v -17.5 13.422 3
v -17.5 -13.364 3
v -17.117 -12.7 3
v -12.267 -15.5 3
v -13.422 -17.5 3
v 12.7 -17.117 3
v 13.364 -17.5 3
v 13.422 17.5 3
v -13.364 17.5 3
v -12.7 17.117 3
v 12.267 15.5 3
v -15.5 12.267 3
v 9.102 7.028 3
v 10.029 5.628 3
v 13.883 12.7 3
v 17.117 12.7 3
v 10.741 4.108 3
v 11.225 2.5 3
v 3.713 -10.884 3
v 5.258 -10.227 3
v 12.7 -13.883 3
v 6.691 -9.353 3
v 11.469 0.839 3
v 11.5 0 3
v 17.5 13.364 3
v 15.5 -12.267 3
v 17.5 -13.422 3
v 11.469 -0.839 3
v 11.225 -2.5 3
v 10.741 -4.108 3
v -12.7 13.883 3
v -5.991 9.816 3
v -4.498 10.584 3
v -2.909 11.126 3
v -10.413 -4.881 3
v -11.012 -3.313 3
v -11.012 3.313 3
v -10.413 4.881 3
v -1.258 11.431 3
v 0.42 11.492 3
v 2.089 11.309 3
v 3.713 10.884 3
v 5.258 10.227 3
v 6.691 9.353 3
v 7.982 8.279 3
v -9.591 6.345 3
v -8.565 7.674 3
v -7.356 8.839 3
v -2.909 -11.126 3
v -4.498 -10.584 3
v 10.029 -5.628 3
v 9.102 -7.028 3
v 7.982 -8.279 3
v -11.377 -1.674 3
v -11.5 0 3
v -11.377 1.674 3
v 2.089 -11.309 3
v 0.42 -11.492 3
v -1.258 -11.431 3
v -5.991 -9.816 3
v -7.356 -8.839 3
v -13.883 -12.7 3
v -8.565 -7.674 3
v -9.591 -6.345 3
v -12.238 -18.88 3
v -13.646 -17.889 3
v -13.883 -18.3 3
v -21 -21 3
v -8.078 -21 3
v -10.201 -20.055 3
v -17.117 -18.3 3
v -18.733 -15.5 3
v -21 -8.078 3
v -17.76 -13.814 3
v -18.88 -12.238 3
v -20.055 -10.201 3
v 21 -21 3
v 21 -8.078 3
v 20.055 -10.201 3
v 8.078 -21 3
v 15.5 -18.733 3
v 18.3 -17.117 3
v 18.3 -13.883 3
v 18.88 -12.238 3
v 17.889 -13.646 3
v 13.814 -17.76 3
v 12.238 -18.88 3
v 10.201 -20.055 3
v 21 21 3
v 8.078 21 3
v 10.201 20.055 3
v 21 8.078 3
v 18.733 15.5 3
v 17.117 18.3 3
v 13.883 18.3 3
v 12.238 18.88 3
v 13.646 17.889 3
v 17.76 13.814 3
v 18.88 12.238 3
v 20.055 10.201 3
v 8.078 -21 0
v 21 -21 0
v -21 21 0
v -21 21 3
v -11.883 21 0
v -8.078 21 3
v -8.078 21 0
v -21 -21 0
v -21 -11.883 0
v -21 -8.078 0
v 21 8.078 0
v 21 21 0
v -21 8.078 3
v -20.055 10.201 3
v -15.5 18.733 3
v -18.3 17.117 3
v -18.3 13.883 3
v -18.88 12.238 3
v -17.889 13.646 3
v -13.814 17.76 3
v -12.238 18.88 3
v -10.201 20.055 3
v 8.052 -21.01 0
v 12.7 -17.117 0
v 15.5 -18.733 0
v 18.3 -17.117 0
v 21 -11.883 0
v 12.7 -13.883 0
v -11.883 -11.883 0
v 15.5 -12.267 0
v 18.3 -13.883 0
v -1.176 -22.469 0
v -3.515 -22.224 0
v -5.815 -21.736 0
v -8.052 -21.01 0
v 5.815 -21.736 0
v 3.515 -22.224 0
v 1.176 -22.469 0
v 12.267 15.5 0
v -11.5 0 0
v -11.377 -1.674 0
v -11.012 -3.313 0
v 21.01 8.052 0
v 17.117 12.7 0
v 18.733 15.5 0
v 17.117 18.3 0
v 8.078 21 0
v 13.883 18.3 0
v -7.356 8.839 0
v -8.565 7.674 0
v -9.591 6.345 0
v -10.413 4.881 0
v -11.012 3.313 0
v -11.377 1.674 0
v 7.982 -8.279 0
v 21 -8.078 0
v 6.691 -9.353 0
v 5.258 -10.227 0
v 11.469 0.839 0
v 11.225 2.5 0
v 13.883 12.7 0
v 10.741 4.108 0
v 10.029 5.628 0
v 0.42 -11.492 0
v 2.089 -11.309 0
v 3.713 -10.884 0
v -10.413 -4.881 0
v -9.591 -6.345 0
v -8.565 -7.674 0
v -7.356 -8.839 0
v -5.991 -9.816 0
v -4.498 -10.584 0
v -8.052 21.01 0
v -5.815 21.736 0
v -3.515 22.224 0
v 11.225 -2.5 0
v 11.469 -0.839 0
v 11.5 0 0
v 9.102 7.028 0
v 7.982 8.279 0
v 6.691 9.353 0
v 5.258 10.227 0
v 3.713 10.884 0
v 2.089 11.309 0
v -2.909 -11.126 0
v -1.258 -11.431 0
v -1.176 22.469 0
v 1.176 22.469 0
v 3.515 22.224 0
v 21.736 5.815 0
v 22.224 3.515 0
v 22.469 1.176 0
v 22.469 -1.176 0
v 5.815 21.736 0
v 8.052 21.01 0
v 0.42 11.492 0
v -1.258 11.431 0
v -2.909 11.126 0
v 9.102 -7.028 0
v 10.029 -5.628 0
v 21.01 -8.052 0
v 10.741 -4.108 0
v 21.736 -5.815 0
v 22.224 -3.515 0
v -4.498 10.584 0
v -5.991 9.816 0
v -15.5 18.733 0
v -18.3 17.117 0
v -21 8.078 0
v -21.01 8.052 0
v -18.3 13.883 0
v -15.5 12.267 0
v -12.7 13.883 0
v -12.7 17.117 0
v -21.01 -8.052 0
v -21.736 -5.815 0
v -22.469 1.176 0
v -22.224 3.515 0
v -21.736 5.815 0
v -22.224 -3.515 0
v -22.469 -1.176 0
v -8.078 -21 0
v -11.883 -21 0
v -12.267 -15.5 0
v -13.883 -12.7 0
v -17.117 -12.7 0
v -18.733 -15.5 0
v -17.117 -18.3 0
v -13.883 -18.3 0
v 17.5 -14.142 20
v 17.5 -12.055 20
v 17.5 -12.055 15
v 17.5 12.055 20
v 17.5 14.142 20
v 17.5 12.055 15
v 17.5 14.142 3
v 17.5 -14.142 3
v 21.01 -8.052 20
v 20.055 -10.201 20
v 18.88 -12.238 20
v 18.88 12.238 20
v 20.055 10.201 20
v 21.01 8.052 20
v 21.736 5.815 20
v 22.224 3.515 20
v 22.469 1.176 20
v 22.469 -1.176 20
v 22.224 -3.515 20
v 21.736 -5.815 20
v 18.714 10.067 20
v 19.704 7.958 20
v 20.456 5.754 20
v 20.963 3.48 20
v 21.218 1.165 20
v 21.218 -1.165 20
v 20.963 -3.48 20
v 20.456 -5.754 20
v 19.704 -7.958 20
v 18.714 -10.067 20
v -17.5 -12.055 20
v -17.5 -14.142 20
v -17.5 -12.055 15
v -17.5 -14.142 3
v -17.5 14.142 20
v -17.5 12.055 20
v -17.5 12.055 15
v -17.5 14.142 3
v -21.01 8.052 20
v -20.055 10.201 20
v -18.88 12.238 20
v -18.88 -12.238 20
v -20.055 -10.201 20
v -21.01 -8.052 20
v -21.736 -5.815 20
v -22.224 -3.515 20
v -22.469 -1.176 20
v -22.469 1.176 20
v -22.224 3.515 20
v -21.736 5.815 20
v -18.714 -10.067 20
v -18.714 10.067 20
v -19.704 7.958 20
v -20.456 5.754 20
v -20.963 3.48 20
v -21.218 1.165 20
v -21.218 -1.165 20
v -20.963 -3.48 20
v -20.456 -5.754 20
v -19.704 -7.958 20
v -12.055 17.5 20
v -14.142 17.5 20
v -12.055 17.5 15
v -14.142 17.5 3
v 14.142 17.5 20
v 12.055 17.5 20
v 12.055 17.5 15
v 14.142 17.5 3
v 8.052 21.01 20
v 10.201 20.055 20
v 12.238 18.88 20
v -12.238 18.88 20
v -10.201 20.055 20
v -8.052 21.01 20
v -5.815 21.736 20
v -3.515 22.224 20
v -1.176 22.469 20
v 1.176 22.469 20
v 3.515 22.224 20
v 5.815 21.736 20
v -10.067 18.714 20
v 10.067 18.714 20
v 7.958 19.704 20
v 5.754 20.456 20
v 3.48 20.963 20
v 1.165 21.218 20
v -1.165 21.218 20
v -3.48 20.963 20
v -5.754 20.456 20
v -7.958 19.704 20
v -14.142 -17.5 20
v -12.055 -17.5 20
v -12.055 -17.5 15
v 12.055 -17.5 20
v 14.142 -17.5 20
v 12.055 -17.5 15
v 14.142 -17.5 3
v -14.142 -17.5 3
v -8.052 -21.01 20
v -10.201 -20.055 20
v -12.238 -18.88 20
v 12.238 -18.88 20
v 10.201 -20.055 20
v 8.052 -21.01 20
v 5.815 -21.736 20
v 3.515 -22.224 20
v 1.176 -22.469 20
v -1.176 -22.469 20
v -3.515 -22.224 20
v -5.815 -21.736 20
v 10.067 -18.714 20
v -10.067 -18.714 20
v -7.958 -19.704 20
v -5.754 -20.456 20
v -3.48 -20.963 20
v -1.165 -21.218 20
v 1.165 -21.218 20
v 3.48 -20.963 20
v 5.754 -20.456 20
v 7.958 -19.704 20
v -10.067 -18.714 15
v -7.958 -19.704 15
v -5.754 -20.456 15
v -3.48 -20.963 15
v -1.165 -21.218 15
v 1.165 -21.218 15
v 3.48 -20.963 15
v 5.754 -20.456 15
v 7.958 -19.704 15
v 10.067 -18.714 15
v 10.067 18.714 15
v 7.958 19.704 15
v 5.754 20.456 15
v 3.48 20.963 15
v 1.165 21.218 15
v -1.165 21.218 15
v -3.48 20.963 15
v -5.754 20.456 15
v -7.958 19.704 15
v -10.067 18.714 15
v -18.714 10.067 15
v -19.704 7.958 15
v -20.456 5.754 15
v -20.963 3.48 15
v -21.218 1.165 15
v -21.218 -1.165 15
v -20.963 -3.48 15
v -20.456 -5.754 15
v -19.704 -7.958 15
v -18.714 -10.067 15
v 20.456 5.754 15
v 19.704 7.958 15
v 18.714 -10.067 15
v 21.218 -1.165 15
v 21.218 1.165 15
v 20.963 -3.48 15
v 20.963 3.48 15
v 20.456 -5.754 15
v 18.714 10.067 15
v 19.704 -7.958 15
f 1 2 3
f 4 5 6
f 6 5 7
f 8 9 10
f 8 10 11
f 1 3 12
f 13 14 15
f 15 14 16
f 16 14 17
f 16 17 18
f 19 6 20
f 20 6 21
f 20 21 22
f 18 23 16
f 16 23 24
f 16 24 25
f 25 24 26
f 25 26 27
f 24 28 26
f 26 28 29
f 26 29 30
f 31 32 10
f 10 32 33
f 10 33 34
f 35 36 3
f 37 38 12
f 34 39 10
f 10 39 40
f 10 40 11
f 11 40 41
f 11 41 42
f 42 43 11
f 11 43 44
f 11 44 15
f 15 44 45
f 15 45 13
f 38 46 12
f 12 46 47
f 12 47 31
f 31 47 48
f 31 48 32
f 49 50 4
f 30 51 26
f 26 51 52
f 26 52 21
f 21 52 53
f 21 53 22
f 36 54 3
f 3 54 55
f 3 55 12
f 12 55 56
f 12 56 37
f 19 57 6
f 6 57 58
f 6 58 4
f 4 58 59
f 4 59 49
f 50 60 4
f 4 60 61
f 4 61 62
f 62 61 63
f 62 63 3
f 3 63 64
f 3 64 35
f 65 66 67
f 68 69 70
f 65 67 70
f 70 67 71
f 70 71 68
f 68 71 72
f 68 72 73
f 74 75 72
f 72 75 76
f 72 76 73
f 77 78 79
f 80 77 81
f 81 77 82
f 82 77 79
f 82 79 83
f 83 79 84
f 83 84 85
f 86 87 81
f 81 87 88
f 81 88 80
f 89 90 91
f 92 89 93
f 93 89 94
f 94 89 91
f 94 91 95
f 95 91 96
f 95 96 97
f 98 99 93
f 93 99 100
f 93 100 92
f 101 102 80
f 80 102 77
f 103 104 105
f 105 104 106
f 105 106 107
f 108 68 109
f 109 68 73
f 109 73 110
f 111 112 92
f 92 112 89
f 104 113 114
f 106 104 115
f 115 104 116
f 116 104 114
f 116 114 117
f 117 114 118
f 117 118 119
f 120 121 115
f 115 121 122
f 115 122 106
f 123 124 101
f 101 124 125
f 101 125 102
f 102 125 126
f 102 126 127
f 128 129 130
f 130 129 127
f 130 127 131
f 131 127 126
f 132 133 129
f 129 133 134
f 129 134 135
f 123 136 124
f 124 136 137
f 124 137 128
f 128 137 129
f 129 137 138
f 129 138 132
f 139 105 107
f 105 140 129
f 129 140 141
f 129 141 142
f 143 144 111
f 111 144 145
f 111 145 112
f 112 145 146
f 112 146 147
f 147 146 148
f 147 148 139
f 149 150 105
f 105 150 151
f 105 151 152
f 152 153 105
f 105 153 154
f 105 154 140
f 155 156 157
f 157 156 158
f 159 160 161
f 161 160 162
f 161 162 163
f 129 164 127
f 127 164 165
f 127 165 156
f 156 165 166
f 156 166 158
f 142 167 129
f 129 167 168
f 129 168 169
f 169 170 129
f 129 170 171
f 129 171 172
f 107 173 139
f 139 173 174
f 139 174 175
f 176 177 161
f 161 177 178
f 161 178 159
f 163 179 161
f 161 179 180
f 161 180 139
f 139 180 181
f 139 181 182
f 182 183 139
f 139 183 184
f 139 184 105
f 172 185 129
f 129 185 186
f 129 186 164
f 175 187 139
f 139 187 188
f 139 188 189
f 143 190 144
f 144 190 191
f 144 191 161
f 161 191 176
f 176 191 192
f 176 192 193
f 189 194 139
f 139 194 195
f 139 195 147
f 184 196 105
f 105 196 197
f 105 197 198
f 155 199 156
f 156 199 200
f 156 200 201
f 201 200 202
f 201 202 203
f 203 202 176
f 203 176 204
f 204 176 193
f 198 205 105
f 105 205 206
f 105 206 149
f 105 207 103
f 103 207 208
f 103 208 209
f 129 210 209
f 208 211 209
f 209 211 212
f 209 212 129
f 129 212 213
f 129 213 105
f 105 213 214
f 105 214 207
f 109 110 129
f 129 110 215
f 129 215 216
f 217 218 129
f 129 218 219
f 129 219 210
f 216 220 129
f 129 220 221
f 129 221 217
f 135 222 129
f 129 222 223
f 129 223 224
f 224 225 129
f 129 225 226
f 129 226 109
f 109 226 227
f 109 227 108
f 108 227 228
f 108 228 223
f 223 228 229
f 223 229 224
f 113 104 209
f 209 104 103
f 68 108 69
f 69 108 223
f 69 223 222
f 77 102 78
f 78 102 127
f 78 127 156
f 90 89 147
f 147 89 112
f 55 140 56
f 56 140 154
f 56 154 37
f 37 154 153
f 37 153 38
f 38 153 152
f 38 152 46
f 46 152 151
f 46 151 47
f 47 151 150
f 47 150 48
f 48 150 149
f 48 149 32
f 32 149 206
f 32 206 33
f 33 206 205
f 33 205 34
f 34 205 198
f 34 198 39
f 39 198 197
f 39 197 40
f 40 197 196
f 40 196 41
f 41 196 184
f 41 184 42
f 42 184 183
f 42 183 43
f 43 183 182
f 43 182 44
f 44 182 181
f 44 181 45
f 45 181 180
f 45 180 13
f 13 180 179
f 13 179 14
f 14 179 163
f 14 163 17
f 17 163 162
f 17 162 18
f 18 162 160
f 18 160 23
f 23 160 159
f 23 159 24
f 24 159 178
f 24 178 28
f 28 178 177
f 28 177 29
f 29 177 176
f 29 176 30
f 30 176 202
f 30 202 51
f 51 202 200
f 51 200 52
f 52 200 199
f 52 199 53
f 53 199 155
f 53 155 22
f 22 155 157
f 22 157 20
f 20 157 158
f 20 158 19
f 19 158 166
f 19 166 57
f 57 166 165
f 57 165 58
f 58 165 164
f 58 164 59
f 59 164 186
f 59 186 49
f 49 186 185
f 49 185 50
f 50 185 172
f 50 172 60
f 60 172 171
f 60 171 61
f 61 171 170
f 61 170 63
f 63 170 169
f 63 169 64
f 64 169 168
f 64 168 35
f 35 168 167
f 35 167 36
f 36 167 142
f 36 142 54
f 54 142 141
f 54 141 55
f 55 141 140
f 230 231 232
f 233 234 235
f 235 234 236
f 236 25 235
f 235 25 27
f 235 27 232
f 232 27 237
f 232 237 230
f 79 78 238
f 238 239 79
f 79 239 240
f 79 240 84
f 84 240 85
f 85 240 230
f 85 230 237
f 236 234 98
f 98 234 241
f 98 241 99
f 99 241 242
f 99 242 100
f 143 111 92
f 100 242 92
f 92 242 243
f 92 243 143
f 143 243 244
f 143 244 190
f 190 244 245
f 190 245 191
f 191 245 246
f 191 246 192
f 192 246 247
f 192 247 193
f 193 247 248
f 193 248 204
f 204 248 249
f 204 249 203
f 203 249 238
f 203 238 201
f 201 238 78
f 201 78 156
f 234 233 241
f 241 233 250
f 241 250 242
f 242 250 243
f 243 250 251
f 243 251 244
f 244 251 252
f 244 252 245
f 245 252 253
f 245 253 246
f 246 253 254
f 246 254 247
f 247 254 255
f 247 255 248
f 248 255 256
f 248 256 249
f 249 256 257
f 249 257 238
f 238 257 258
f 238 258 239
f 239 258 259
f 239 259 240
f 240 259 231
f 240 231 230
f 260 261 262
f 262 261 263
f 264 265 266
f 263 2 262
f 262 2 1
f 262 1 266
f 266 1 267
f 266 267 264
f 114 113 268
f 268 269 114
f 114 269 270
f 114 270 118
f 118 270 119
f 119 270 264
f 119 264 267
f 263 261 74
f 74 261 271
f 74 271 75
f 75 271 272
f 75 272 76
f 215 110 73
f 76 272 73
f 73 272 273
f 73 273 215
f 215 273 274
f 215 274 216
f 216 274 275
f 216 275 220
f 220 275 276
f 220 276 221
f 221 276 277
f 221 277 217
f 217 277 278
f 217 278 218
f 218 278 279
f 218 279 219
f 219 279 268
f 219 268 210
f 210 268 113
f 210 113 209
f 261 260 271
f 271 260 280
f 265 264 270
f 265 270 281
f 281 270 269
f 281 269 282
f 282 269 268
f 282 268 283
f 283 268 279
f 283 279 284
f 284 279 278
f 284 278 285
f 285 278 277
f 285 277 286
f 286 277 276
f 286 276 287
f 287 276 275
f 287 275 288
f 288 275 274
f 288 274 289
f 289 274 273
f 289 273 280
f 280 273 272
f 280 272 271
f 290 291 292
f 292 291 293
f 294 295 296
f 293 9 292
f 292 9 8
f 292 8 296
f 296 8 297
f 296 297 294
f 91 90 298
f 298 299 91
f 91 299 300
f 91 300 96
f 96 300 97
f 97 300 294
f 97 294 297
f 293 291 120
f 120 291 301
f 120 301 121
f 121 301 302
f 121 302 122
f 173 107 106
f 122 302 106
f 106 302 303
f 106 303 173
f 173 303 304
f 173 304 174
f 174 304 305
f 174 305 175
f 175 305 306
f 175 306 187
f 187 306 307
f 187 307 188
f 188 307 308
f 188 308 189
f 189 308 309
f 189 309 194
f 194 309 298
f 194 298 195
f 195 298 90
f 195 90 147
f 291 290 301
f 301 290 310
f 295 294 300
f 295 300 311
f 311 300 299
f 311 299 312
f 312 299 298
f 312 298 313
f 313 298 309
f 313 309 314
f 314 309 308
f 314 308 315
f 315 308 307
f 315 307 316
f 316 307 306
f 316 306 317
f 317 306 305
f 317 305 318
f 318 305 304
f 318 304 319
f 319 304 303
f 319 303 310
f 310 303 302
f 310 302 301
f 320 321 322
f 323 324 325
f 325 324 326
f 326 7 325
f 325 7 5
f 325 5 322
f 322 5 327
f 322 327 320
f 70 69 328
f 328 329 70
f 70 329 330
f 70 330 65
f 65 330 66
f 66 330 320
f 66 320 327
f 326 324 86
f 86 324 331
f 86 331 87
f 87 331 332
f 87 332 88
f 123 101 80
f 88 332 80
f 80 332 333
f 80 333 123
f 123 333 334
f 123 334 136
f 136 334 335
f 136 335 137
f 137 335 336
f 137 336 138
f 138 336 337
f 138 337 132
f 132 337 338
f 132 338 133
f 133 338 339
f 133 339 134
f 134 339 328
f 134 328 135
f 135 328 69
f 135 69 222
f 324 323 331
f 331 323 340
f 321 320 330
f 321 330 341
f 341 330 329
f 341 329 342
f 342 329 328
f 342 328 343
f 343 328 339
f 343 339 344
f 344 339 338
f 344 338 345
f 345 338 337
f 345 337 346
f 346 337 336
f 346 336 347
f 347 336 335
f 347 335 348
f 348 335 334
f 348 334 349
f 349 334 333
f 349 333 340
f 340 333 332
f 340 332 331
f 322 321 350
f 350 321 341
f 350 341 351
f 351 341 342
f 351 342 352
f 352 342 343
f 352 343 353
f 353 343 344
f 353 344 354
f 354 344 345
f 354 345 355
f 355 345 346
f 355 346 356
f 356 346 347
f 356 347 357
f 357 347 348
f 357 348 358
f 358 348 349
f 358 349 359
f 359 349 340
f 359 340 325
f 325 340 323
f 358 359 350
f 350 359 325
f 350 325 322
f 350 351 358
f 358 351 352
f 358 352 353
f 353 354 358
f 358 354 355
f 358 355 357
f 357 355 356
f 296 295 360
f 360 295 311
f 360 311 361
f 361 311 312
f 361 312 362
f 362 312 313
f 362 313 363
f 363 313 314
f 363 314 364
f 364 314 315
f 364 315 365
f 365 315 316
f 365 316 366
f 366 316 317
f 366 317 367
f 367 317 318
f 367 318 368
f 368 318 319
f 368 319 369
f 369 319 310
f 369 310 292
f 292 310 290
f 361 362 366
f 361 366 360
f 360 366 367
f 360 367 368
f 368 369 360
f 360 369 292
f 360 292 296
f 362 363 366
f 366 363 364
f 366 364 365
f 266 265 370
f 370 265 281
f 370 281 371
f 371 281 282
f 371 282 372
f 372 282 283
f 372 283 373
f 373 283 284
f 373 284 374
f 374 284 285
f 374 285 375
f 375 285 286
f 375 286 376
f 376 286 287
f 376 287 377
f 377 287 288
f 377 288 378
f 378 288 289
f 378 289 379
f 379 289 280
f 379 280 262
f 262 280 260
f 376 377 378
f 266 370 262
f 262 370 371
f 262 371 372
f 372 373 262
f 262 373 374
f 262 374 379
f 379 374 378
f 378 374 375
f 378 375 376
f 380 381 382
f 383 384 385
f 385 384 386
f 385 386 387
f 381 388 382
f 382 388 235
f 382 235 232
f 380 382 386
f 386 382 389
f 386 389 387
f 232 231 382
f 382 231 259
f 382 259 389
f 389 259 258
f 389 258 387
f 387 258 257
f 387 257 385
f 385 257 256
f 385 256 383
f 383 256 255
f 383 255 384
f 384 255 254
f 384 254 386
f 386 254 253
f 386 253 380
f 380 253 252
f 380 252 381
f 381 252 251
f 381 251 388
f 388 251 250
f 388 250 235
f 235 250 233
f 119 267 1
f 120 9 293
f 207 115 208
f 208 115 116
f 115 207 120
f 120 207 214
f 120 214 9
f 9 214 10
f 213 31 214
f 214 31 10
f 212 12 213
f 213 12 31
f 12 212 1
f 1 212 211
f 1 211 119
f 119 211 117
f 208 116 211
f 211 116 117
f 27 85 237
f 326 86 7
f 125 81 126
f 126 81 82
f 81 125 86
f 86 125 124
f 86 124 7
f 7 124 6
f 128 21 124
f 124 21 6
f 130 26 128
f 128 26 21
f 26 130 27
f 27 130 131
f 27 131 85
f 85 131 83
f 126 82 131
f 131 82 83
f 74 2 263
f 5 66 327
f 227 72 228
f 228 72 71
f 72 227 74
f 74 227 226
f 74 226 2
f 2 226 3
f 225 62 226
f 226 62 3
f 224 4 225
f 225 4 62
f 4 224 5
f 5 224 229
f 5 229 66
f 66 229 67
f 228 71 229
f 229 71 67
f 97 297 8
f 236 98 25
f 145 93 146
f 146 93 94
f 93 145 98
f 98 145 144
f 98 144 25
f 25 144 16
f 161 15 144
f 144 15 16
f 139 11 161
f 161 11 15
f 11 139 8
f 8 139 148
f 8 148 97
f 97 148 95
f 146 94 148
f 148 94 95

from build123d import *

# Parameters (mm, degrees)
SKETCH_1_W               = 42
SKETCH_1_H               = 42
SKETCH_1_R               = 1.5
SKETCH_1_R_2             = 11.5
EXTRUDE_1_DEPTH          = 3
EXTRUDE_2_DEPTH          = 20
SKETCH_5_R               = 21.25
CUT_EXTRUDE_3_DEPTH      = 5
CUT_EXTRUDE_4_DEPTH      = 3
PATTERN_CIRCULAR_1_COUNT = 4


with BuildPart() as part:
    # 草图1 → 凸台-拉伸1 (new body)
    with BuildSketch(Plane.XY):
        Rectangle(SKETCH_1_W, SKETCH_1_H)
        with Locations((15.5, 15.5)):
            Circle(SKETCH_1_R, mode=Mode.SUBTRACT)
        with Locations((15.5, -15.5)):
            Circle(SKETCH_1_R, mode=Mode.SUBTRACT)
        with Locations((-15.5, -15.5)):
            Circle(SKETCH_1_R, mode=Mode.SUBTRACT)
        with Locations((-15.5, 15.5)):
            Circle(SKETCH_1_R, mode=Mode.SUBTRACT)
        Circle(SKETCH_1_R_2, mode=Mode.SUBTRACT)
    extrude(amount=EXTRUDE_1_DEPTH)

    # 草图2 → 凸台-拉伸2 (add)
    with BuildSketch(Plane(origin=(0, 0, 0), x_dir=(-1, 0, 0), z_dir=(0, 0, -1))):
        with BuildLine():
            Line((17.5, 14.142135624), (17.5, -14.142135624))
            ThreePointArc((17.5, -14.142135624), (22.5, 0), (17.5, 14.142135624))
        make_face()
        with BuildLine():
            ThreePointArc((-14.142135624, -17.5), (0, -22.5), (14.142135624, -17.5))
            Line((14.142135624, -17.5), (-14.142135624, -17.5))
        make_face()
        with BuildLine():
            Line((-14.142135624, 17.5), (14.142135624, 17.5))
            ThreePointArc((14.142135624, 17.5), (0, 22.5), (-14.142135624, 17.5))
        make_face()
        with BuildLine():
            ThreePointArc((-17.5, 14.142135624), (-22.5, 0), (-17.5, -14.142135624))
            Line((-17.5, -14.142135624), (-17.5, 14.142135624))
        make_face()
    extrude(amount=-EXTRUDE_2_DEPTH)

    # 草图5 → 切除-拉伸3 (cut)
    with BuildSketch(Plane.XY.offset(20)):
        Circle(SKETCH_5_R)
    extrude(amount=-CUT_EXTRUDE_3_DEPTH, mode=Mode.SUBTRACT)

    # 草图6 → 切除-拉伸4 (cut)
    with BuildSketch(Plane(origin=(0, 0, 0), x_dir=(-1, 0, 0), z_dir=(0, 0, -1))):
        Polygon((18.3, 17.116580754), (15.5, 18.733161507), (12.7, 17.116580754), (12.7, 13.883419246), (15.5, 12.266838493), (18.3, 13.883419246), align=None)
    cut_extrude_4 = extrude(amount=-CUT_EXTRUDE_4_DEPTH, mode=Mode.SUBTRACT)

    # 阵列(圆周)1: 切除-拉伸4 ×4 about axis
    pattern_circular_1_axis = Axis((0, 0, 0), (0, 0, 1))
    for i in range(1, PATTERN_CIRCULAR_1_COUNT):
        add(cut_extrude_4.rotate(pattern_circular_1_axis, i * 360 / PATTERN_CIRCULAR_1_COUNT), mode=Mode.SUBTRACT)


solid = part.part
